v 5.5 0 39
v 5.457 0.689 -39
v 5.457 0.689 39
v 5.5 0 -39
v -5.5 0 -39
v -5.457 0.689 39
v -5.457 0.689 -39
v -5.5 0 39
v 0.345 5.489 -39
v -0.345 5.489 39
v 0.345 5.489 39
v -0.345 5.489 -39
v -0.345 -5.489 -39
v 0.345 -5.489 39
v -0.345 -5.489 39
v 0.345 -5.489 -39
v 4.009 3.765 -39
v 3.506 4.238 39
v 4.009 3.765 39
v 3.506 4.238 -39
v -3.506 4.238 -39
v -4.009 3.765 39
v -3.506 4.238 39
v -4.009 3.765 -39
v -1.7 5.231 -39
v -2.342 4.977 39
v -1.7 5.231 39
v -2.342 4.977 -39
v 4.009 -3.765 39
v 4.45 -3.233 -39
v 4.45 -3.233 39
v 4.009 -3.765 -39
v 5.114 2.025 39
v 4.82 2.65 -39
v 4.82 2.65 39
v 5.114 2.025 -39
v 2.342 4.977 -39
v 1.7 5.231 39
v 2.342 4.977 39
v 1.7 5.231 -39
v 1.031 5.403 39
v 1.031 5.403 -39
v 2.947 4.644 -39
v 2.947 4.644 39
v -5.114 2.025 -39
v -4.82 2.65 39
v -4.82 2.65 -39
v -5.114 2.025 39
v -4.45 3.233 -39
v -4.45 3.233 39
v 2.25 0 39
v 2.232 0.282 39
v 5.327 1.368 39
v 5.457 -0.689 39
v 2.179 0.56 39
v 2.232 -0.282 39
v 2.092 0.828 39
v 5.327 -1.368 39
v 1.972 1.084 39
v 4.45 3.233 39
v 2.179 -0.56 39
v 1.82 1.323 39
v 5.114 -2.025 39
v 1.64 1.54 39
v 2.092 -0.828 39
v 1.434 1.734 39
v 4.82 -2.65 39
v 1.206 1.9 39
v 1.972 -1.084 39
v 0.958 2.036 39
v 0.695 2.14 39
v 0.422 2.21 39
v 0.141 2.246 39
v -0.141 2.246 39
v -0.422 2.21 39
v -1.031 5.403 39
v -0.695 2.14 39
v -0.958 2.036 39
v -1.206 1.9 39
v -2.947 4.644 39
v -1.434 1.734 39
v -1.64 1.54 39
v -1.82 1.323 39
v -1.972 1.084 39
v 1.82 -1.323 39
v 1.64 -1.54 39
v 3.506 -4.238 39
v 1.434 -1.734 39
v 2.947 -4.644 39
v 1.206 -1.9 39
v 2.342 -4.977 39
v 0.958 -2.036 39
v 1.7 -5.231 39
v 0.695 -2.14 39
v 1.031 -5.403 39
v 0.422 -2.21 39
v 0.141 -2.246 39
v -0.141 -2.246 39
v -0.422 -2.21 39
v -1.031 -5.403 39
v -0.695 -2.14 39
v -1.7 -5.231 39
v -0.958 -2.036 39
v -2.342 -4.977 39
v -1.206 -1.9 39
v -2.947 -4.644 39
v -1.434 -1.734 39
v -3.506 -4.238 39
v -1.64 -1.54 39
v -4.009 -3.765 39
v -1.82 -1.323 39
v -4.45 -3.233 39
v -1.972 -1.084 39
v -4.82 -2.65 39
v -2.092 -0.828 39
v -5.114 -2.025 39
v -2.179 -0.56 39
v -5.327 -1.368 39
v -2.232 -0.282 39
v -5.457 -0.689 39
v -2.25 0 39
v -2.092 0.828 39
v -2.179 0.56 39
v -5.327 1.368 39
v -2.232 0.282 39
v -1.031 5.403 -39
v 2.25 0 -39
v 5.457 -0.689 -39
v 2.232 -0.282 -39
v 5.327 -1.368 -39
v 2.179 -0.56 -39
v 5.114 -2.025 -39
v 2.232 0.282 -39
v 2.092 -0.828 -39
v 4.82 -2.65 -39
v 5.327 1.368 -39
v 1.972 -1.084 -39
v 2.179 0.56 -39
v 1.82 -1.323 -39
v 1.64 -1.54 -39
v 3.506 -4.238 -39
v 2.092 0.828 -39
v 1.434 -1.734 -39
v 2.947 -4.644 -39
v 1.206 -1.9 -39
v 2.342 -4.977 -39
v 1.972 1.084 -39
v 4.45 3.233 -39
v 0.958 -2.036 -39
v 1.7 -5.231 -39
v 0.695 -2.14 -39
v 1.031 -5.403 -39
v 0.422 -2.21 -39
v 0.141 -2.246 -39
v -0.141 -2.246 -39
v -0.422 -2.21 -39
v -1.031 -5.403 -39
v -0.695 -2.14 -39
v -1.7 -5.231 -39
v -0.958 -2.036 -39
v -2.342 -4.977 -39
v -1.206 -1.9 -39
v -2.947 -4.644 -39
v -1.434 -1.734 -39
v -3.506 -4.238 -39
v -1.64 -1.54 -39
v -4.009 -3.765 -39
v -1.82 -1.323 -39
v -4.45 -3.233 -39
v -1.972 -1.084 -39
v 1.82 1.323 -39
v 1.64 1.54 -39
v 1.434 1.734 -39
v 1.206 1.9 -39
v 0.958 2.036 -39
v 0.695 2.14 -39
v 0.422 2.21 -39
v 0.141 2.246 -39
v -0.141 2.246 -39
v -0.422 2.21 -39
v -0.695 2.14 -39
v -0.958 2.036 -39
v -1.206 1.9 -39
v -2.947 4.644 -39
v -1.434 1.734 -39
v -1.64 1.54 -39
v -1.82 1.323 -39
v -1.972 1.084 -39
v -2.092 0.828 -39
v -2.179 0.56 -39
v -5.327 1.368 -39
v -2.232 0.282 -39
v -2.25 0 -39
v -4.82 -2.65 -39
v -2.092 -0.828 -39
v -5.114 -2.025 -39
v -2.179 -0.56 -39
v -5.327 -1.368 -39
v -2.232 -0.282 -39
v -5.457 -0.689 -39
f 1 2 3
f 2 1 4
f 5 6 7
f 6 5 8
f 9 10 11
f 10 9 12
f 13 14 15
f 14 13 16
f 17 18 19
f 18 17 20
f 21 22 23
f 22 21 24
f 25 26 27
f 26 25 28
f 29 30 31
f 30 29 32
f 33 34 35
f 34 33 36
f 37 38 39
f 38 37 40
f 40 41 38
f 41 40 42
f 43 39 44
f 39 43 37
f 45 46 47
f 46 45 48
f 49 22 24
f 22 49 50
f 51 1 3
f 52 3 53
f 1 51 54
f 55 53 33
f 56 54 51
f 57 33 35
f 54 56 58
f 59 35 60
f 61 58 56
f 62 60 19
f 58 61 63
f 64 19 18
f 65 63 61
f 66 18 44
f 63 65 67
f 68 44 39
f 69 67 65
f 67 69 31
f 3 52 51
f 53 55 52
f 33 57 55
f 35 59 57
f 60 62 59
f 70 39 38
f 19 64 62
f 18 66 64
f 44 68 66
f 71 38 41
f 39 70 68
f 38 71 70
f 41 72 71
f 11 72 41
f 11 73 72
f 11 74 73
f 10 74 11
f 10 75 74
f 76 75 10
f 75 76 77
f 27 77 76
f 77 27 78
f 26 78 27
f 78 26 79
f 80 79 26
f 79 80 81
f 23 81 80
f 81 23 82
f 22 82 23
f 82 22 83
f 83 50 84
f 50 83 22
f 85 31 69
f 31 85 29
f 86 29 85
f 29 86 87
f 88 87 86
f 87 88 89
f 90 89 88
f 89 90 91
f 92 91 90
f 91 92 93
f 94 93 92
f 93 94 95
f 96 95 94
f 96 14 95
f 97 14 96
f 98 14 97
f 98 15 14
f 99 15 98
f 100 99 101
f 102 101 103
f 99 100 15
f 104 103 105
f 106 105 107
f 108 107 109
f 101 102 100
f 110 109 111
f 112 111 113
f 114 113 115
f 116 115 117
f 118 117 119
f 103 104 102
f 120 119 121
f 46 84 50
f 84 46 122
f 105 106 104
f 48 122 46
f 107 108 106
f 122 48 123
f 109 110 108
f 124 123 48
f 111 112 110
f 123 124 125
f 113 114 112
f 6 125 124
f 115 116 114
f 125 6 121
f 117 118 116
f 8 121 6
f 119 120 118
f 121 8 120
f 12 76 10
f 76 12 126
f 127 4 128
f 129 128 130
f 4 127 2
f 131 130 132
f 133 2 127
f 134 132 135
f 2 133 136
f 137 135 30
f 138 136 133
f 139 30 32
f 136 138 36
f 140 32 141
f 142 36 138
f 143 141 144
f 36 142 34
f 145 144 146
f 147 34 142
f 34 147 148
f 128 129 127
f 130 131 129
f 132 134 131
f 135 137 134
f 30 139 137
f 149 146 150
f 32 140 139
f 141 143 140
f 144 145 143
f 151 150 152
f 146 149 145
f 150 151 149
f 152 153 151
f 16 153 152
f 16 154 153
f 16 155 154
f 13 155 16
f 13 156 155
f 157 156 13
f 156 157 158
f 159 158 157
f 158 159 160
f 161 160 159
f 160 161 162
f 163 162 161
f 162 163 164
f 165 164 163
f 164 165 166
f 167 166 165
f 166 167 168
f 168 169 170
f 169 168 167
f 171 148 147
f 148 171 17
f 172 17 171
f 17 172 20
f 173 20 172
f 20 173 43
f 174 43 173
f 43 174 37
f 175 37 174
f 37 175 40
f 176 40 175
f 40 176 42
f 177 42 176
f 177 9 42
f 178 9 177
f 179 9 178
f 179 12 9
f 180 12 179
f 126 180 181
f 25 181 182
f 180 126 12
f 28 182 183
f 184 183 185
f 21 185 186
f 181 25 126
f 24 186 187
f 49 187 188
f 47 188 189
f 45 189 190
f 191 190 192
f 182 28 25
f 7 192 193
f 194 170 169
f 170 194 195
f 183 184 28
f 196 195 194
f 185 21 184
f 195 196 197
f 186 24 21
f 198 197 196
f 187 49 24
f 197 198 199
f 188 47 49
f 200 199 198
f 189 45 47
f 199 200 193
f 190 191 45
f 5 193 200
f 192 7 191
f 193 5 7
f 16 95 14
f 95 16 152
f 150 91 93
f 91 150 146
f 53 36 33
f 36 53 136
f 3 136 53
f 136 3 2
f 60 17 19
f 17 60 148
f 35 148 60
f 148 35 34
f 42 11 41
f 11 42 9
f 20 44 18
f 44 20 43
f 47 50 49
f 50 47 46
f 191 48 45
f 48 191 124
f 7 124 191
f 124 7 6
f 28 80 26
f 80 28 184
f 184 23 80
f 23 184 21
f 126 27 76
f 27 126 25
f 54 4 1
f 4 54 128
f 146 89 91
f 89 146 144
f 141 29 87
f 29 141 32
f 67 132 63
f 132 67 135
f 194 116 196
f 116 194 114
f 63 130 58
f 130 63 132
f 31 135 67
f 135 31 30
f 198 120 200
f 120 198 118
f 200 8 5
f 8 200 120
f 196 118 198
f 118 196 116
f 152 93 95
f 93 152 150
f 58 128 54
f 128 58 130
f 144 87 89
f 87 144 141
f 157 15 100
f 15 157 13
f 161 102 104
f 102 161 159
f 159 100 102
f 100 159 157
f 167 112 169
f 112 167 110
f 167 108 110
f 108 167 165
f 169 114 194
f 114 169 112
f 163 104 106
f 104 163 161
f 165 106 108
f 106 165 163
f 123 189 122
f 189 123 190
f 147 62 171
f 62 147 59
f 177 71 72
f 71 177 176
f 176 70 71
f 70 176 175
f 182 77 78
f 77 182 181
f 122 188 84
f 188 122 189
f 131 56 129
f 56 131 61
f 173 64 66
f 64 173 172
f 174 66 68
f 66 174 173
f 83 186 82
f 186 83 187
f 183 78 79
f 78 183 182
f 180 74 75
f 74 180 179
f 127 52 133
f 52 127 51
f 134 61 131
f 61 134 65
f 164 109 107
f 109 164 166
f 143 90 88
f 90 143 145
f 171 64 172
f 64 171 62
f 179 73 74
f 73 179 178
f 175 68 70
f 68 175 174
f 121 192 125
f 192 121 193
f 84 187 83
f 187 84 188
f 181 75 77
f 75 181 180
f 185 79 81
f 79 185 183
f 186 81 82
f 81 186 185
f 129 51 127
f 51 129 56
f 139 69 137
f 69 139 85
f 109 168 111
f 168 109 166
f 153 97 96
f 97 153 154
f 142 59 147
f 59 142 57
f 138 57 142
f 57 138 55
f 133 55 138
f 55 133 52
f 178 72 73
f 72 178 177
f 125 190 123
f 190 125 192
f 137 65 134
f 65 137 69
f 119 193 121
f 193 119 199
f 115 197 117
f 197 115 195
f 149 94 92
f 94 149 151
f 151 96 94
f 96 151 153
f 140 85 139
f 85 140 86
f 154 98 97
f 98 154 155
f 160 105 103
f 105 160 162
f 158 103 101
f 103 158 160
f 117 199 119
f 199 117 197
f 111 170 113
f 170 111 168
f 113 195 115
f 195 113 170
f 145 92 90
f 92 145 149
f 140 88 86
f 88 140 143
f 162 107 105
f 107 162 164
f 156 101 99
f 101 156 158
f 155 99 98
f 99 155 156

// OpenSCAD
$fn = 50;


difference() {
	union() {
		translate(v = [0, 0, -39.0000000000]) {
			cylinder(h = 78, r = 5.5000000000);
		}
	}
	union() {
		translate(v = [0, 0, -100.0000000000]) {
			cylinder(h = 200, r = 2.2500000000);
		}
	}
}
